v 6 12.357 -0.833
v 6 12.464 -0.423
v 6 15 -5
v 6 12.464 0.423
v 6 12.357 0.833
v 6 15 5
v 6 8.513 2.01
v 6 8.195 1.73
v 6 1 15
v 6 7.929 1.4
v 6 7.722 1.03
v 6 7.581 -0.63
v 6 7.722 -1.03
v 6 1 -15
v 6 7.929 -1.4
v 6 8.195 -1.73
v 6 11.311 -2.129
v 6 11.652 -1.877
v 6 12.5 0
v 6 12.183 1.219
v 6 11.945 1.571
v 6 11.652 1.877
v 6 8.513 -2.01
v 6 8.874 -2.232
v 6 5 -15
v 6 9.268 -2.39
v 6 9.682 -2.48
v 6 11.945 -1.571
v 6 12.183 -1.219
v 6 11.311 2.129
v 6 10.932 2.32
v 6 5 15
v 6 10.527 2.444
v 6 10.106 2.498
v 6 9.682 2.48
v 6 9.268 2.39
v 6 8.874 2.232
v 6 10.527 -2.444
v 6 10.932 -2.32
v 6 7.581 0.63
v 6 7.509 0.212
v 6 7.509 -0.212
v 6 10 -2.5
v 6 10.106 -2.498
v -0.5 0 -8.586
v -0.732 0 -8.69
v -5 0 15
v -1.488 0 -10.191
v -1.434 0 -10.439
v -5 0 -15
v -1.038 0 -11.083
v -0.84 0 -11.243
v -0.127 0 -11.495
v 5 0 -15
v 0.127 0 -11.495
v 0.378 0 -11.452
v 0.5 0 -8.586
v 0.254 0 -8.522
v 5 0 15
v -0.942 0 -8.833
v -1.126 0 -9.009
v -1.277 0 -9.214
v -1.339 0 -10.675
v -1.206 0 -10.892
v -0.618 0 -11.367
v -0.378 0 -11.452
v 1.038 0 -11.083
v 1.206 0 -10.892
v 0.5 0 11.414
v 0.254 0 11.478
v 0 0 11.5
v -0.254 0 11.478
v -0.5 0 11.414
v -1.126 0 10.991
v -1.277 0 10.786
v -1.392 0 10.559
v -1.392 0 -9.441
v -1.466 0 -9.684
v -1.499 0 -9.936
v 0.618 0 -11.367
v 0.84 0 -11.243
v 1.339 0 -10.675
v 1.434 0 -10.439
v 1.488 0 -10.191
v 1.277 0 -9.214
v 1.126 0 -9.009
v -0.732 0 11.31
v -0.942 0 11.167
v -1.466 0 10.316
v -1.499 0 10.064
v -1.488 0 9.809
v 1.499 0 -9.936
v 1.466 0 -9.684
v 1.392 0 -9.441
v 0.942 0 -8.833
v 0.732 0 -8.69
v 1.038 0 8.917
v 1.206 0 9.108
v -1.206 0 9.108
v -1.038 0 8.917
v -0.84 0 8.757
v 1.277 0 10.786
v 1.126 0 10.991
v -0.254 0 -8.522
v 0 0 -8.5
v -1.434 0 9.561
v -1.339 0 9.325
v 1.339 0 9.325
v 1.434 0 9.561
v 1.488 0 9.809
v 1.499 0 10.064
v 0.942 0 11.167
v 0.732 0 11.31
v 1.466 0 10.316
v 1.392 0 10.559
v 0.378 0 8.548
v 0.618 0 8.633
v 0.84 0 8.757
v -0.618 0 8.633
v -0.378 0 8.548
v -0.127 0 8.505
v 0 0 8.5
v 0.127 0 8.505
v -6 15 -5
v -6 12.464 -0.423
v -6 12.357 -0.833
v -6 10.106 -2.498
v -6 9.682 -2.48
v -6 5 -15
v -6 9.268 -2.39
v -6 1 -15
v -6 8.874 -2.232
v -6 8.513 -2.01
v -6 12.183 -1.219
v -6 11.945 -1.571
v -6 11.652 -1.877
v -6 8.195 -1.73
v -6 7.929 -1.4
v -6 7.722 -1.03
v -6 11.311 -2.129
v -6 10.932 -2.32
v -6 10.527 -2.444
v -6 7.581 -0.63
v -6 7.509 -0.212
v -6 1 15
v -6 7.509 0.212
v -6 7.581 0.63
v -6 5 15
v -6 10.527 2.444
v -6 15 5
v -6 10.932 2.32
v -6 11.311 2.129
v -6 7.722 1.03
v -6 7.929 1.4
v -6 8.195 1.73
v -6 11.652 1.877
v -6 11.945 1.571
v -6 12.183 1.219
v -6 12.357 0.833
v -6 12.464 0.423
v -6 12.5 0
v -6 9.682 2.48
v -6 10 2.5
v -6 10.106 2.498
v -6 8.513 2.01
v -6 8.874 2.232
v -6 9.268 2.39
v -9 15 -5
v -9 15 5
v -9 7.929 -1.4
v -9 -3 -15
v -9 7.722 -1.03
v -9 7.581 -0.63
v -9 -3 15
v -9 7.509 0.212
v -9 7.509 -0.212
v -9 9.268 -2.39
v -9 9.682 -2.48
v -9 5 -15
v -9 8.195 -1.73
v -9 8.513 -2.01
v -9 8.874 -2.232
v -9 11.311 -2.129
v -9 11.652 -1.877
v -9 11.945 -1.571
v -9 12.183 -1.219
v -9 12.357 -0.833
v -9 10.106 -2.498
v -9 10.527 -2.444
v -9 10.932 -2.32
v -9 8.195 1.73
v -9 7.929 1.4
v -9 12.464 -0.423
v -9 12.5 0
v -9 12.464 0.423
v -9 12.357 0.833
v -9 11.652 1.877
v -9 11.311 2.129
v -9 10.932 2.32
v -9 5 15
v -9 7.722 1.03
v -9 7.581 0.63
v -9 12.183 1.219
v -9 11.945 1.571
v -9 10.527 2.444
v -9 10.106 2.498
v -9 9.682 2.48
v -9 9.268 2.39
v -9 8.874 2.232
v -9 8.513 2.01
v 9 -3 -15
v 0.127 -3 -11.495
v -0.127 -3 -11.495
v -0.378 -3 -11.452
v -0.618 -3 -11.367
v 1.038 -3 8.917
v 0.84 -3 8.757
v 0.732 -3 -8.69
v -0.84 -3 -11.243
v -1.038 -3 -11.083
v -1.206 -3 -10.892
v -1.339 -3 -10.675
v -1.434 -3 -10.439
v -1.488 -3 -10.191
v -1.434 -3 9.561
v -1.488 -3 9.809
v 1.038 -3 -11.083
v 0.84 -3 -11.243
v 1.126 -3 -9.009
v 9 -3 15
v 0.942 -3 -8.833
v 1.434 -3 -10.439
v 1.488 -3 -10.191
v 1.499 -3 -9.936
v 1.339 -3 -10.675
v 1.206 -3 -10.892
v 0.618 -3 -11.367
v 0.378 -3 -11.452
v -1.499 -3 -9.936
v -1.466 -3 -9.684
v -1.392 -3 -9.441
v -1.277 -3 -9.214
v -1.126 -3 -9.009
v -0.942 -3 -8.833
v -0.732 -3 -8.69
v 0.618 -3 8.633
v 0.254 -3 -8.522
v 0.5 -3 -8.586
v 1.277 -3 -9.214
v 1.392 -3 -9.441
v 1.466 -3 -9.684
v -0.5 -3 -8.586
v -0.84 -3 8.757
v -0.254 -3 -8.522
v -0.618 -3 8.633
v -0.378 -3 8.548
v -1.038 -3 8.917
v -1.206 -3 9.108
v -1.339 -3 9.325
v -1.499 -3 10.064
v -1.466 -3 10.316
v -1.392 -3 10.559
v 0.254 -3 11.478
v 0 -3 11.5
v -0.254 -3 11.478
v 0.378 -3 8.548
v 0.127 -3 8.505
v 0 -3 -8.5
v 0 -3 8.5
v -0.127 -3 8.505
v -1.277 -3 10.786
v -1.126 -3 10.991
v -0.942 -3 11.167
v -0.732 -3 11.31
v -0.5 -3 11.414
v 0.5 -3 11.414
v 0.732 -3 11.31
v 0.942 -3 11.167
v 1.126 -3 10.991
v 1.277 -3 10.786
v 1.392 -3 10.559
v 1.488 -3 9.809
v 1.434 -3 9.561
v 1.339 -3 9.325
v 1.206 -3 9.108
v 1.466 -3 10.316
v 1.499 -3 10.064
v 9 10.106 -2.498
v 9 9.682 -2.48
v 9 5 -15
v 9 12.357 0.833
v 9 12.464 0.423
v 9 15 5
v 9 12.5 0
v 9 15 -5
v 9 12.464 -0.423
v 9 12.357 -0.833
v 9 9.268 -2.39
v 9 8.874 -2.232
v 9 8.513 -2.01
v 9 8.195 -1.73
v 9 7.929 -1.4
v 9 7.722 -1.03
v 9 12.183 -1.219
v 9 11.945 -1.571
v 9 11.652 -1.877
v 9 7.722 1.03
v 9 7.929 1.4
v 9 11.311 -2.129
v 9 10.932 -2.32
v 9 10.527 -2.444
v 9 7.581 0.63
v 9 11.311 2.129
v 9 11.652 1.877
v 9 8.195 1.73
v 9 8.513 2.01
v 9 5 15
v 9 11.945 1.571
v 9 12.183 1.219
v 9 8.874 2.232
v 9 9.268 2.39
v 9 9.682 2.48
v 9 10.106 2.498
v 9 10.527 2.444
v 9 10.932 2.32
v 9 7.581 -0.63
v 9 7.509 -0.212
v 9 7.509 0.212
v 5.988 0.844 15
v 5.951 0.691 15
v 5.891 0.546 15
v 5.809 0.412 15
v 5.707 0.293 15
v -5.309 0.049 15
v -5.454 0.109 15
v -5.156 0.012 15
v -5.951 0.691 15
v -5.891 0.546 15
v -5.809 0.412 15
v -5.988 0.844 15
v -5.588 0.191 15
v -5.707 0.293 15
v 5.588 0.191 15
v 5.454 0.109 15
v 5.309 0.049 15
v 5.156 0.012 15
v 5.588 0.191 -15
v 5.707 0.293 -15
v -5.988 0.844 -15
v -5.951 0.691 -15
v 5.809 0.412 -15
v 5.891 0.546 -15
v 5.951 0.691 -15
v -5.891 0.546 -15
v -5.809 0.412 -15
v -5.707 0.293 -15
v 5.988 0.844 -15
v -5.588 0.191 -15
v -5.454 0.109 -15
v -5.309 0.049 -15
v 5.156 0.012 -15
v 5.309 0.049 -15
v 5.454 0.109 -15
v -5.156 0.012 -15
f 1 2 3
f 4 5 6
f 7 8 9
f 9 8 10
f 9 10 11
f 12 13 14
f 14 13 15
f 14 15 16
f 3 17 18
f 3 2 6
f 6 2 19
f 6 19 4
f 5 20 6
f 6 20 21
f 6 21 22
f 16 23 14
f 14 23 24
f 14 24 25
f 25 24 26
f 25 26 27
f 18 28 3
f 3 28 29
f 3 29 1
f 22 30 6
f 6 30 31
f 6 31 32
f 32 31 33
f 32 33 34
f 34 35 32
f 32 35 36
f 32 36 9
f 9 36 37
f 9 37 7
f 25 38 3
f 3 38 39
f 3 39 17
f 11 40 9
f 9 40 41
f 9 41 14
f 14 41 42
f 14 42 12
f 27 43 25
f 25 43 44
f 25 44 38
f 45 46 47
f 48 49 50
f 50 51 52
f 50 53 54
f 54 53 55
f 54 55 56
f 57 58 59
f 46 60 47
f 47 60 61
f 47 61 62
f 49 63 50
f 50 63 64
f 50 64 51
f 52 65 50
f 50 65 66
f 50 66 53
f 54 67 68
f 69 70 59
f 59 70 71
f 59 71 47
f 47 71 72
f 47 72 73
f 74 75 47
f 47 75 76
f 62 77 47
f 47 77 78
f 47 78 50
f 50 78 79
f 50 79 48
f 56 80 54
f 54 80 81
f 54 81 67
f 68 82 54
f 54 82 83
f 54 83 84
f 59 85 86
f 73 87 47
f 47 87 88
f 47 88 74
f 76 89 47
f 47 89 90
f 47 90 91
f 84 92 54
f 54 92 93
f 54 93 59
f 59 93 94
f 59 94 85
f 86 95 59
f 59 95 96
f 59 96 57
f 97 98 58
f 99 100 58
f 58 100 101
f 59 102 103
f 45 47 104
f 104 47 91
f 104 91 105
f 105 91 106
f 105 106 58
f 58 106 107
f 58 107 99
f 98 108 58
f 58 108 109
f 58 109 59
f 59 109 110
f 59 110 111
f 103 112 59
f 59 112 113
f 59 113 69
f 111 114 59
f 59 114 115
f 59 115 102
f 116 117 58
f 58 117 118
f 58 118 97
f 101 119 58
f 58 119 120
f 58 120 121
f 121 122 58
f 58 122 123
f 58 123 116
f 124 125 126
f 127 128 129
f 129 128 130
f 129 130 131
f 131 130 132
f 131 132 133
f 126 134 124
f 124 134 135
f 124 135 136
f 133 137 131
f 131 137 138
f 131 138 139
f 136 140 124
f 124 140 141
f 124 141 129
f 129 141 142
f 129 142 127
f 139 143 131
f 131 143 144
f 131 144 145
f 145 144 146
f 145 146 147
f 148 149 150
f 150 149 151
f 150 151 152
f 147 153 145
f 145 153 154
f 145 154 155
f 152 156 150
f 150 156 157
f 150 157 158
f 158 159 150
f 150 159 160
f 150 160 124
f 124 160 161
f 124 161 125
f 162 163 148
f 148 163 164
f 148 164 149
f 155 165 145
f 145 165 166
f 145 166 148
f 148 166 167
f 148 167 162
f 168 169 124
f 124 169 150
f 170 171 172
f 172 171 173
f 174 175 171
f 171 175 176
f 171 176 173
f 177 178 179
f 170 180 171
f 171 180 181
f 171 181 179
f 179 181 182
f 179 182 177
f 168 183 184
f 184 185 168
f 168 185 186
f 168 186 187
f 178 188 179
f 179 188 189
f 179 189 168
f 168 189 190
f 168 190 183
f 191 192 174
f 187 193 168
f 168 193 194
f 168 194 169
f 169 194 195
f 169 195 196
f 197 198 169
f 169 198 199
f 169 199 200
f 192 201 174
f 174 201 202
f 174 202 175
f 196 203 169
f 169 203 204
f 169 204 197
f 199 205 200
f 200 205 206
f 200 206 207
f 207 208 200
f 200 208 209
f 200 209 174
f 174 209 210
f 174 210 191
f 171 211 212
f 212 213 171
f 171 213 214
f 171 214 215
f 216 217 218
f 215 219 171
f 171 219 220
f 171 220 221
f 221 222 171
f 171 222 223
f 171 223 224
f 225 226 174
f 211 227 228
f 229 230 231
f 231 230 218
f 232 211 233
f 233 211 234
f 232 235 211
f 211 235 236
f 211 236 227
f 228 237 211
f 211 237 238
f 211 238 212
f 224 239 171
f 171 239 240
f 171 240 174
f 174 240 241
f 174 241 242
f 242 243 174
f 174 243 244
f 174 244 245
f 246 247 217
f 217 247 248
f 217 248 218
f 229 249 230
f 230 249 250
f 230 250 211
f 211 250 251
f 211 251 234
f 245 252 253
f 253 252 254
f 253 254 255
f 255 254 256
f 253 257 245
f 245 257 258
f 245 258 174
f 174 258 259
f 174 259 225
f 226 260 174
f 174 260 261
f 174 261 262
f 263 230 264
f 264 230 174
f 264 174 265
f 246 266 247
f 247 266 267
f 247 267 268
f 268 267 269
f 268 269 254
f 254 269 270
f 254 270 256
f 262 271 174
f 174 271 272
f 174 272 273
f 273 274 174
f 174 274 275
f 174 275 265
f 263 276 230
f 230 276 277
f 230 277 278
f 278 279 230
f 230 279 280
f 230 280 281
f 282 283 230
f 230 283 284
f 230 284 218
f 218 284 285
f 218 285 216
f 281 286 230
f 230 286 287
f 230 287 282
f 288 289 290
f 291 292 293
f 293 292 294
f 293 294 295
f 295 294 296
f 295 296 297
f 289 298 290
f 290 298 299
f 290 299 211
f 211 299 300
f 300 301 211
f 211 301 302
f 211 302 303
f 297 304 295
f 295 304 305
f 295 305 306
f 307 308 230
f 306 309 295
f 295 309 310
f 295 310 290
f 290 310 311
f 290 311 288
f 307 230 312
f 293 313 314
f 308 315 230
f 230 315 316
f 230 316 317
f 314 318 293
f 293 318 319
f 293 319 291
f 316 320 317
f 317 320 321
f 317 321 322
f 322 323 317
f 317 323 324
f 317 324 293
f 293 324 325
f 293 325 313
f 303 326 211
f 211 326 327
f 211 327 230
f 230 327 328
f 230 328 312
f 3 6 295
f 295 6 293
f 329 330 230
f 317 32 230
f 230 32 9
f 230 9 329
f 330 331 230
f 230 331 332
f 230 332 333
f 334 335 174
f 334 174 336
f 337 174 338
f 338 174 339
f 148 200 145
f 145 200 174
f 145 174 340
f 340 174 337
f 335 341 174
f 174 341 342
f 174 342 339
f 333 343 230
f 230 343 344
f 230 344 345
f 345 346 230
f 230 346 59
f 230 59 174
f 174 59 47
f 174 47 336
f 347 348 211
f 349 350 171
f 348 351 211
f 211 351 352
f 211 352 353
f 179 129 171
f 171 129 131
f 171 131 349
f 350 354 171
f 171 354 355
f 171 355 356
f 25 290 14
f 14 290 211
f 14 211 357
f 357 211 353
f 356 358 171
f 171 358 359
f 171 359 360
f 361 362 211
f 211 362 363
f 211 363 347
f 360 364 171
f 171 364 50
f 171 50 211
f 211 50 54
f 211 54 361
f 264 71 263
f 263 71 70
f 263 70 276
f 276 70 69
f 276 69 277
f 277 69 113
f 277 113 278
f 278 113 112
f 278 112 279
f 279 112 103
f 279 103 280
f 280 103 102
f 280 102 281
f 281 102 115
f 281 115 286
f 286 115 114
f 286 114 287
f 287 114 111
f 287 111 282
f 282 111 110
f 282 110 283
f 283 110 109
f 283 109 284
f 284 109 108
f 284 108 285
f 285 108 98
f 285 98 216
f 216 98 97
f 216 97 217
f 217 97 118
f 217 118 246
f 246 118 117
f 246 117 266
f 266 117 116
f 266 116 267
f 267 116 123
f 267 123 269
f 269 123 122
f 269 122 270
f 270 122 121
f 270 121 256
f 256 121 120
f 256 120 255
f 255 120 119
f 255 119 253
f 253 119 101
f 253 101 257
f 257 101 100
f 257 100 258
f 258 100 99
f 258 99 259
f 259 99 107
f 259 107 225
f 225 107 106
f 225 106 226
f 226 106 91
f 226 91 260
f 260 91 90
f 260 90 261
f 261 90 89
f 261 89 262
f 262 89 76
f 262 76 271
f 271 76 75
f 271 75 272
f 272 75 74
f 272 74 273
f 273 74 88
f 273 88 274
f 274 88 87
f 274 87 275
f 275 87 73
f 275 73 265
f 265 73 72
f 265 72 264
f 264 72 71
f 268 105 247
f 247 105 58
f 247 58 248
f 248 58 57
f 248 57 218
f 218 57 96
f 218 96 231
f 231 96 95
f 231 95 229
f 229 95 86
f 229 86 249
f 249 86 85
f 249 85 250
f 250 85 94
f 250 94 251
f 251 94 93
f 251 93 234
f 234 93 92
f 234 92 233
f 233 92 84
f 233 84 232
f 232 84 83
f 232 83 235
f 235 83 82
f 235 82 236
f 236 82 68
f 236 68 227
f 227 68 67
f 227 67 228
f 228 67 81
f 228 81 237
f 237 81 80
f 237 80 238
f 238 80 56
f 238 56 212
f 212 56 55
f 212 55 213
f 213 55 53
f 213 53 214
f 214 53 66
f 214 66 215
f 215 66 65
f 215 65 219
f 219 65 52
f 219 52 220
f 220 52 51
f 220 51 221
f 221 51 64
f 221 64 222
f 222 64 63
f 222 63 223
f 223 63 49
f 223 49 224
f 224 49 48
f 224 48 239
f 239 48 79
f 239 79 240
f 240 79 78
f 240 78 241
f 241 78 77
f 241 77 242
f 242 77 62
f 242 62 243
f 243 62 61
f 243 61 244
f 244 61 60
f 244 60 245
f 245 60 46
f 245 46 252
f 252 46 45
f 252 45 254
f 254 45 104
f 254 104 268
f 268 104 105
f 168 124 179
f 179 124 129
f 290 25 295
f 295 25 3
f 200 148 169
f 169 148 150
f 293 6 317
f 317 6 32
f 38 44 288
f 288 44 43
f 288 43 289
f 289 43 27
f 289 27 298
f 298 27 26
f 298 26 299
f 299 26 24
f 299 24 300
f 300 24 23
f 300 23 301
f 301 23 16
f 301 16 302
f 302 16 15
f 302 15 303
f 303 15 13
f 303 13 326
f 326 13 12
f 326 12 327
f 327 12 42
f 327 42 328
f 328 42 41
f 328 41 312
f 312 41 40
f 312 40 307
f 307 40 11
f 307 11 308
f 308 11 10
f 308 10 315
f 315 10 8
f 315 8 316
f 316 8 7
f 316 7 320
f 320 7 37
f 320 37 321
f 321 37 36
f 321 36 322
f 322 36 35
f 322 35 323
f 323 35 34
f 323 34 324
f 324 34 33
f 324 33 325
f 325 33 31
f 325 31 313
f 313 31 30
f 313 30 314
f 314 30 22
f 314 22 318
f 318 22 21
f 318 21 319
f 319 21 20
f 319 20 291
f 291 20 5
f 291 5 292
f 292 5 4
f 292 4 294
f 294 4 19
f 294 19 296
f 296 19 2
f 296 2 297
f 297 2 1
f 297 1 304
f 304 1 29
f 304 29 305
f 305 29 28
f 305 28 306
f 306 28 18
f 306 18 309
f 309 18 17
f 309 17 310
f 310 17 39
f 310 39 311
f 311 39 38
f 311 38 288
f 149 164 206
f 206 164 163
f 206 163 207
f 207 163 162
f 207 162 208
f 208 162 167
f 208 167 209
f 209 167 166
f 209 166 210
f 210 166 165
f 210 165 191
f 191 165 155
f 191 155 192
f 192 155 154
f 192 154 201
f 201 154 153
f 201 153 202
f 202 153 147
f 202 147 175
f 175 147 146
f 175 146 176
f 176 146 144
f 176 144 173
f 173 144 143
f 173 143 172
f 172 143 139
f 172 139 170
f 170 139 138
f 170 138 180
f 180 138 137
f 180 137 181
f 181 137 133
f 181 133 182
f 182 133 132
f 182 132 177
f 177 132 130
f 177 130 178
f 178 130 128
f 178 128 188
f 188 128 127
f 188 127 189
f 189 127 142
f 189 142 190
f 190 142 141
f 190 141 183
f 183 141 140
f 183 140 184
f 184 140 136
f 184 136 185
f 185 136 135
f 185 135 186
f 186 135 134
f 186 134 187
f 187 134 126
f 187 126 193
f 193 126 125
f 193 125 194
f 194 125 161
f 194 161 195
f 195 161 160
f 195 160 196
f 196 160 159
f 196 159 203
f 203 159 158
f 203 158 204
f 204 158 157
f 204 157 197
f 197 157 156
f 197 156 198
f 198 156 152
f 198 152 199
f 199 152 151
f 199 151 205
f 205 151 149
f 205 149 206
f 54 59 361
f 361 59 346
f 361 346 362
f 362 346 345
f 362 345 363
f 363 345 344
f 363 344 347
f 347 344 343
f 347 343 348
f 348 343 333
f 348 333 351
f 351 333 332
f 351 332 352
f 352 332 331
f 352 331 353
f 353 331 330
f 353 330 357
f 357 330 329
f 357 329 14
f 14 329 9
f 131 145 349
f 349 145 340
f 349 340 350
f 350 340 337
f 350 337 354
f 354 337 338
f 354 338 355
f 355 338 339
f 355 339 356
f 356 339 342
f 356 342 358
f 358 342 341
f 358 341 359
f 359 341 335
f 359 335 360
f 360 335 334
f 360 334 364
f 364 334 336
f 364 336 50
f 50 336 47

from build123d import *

# Parameters (mm, degrees)
BOSS_EXTRUDE1_DEPTH = 15
SKETCH3_R           = 1.5
CUT_EXTRUDE1_DEPTH  = 3
CUT_EXTRUDE2_REACH  = 29.821
SKETCH4_R           = 2.5
FILLET1_R           = 1


with BuildPart() as part:
    # Sketch1 → Boss-Extrude1 (new, symmetric)
    with BuildSketch(Plane.XY):
        Polygon((-6, 0), (6, 0), (6, 15), (9, 15), (9, -3), (-9, -3), (-9, 15), (-6, 15), align=None)
    extrude(amount=BOSS_EXTRUDE1_DEPTH, both=True)

    # Sketch3 → Cut-Extrude1 (cut)
    with BuildSketch(Plane(origin=(0, 0, 0), x_dir=(1, 0, 0), z_dir=(0, 1, 0))):
        with Locations(Location((0, 10, 0), (0, 0, 270))):
            Circle(SKETCH3_R)
        with Locations(Location((0, -10, 0), (0, 0, 90))):
            Circle(SKETCH3_R)
    extrude(amount=-CUT_EXTRUDE1_DEPTH, mode=Mode.SUBTRACT)

    # Cut-Extrude2: up to this face of the body (flat: up to its plane)
    cut_extrude2_end = Plane(part.part.faces().sort_by_distance((-9, 6, 0))[0])
    # Sketch4 → Cut-Extrude2 (cut, up to the picked face)
    with BuildSketch(Plane(origin=(9, 0, 0), x_dir=(0, 0, -1), z_dir=(1, 0, 0)), mode=Mode.PRIVATE) as cut_extrude2_sk1:
        with Locations(Location((0, 10, 0), (0, 0, 90))):
            Circle(SKETCH4_R)
    cut_extrude2_tool1 = split(extrude(cut_extrude2_sk1.sketch, amount=-CUT_EXTRUDE2_REACH, mode=Mode.PRIVATE), bisect_by=cut_extrude2_end, keep=Keep.BOTH, mode=Mode.PRIVATE)
    # Sketch4 → Cut-Extrude2 (cut, up to the picked face)
    with BuildSketch(Plane(origin=(9, 0, 0), x_dir=(0, 0, -1), z_dir=(1, 0, 0)), mode=Mode.PRIVATE) as cut_extrude2_sk2:
        Polygon((-15, 15), (-5, 15), (-15, 5), align=None)
    cut_extrude2_tool2 = split(extrude(cut_extrude2_sk2.sketch, amount=-CUT_EXTRUDE2_REACH, mode=Mode.PRIVATE), bisect_by=cut_extrude2_end, keep=Keep.BOTH, mode=Mode.PRIVATE)
    # Sketch4 → Cut-Extrude2 (cut, up to the picked face)
    with BuildSketch(Plane(origin=(9, 0, 0), x_dir=(0, 0, -1), z_dir=(1, 0, 0)), mode=Mode.PRIVATE) as cut_extrude2_sk3:
        Polygon((15, 5), (5, 15), (15, 15), align=None)
    cut_extrude2_tool3 = split(extrude(cut_extrude2_sk3.sketch, amount=-CUT_EXTRUDE2_REACH, mode=Mode.PRIVATE), bisect_by=cut_extrude2_end, keep=Keep.BOTH, mode=Mode.PRIVATE)
    add(cut_extrude2_tool1.solids().sort_by(Axis((9, 10, 0), (-1, 0, 0)))[0], mode=Mode.SUBTRACT)
    add(cut_extrude2_tool2.solids().sort_by(Axis((9, 11.666667, 11.666667), (-1, 0, 0)))[0], mode=Mode.SUBTRACT)
    add(cut_extrude2_tool3.solids().sort_by(Axis((9, 11.666667, -11.666667), (-1, 0, 0)))[0], mode=Mode.SUBTRACT)

    # Fillet1
    fillet1_edges = [part.edges().sort_by_distance(p)[0] for p in [
        (-6, 0, 0),
        (6, 0, 0),
    ]]
    fillet(fillet1_edges, radius=FILLET1_R)


solid = part.part
